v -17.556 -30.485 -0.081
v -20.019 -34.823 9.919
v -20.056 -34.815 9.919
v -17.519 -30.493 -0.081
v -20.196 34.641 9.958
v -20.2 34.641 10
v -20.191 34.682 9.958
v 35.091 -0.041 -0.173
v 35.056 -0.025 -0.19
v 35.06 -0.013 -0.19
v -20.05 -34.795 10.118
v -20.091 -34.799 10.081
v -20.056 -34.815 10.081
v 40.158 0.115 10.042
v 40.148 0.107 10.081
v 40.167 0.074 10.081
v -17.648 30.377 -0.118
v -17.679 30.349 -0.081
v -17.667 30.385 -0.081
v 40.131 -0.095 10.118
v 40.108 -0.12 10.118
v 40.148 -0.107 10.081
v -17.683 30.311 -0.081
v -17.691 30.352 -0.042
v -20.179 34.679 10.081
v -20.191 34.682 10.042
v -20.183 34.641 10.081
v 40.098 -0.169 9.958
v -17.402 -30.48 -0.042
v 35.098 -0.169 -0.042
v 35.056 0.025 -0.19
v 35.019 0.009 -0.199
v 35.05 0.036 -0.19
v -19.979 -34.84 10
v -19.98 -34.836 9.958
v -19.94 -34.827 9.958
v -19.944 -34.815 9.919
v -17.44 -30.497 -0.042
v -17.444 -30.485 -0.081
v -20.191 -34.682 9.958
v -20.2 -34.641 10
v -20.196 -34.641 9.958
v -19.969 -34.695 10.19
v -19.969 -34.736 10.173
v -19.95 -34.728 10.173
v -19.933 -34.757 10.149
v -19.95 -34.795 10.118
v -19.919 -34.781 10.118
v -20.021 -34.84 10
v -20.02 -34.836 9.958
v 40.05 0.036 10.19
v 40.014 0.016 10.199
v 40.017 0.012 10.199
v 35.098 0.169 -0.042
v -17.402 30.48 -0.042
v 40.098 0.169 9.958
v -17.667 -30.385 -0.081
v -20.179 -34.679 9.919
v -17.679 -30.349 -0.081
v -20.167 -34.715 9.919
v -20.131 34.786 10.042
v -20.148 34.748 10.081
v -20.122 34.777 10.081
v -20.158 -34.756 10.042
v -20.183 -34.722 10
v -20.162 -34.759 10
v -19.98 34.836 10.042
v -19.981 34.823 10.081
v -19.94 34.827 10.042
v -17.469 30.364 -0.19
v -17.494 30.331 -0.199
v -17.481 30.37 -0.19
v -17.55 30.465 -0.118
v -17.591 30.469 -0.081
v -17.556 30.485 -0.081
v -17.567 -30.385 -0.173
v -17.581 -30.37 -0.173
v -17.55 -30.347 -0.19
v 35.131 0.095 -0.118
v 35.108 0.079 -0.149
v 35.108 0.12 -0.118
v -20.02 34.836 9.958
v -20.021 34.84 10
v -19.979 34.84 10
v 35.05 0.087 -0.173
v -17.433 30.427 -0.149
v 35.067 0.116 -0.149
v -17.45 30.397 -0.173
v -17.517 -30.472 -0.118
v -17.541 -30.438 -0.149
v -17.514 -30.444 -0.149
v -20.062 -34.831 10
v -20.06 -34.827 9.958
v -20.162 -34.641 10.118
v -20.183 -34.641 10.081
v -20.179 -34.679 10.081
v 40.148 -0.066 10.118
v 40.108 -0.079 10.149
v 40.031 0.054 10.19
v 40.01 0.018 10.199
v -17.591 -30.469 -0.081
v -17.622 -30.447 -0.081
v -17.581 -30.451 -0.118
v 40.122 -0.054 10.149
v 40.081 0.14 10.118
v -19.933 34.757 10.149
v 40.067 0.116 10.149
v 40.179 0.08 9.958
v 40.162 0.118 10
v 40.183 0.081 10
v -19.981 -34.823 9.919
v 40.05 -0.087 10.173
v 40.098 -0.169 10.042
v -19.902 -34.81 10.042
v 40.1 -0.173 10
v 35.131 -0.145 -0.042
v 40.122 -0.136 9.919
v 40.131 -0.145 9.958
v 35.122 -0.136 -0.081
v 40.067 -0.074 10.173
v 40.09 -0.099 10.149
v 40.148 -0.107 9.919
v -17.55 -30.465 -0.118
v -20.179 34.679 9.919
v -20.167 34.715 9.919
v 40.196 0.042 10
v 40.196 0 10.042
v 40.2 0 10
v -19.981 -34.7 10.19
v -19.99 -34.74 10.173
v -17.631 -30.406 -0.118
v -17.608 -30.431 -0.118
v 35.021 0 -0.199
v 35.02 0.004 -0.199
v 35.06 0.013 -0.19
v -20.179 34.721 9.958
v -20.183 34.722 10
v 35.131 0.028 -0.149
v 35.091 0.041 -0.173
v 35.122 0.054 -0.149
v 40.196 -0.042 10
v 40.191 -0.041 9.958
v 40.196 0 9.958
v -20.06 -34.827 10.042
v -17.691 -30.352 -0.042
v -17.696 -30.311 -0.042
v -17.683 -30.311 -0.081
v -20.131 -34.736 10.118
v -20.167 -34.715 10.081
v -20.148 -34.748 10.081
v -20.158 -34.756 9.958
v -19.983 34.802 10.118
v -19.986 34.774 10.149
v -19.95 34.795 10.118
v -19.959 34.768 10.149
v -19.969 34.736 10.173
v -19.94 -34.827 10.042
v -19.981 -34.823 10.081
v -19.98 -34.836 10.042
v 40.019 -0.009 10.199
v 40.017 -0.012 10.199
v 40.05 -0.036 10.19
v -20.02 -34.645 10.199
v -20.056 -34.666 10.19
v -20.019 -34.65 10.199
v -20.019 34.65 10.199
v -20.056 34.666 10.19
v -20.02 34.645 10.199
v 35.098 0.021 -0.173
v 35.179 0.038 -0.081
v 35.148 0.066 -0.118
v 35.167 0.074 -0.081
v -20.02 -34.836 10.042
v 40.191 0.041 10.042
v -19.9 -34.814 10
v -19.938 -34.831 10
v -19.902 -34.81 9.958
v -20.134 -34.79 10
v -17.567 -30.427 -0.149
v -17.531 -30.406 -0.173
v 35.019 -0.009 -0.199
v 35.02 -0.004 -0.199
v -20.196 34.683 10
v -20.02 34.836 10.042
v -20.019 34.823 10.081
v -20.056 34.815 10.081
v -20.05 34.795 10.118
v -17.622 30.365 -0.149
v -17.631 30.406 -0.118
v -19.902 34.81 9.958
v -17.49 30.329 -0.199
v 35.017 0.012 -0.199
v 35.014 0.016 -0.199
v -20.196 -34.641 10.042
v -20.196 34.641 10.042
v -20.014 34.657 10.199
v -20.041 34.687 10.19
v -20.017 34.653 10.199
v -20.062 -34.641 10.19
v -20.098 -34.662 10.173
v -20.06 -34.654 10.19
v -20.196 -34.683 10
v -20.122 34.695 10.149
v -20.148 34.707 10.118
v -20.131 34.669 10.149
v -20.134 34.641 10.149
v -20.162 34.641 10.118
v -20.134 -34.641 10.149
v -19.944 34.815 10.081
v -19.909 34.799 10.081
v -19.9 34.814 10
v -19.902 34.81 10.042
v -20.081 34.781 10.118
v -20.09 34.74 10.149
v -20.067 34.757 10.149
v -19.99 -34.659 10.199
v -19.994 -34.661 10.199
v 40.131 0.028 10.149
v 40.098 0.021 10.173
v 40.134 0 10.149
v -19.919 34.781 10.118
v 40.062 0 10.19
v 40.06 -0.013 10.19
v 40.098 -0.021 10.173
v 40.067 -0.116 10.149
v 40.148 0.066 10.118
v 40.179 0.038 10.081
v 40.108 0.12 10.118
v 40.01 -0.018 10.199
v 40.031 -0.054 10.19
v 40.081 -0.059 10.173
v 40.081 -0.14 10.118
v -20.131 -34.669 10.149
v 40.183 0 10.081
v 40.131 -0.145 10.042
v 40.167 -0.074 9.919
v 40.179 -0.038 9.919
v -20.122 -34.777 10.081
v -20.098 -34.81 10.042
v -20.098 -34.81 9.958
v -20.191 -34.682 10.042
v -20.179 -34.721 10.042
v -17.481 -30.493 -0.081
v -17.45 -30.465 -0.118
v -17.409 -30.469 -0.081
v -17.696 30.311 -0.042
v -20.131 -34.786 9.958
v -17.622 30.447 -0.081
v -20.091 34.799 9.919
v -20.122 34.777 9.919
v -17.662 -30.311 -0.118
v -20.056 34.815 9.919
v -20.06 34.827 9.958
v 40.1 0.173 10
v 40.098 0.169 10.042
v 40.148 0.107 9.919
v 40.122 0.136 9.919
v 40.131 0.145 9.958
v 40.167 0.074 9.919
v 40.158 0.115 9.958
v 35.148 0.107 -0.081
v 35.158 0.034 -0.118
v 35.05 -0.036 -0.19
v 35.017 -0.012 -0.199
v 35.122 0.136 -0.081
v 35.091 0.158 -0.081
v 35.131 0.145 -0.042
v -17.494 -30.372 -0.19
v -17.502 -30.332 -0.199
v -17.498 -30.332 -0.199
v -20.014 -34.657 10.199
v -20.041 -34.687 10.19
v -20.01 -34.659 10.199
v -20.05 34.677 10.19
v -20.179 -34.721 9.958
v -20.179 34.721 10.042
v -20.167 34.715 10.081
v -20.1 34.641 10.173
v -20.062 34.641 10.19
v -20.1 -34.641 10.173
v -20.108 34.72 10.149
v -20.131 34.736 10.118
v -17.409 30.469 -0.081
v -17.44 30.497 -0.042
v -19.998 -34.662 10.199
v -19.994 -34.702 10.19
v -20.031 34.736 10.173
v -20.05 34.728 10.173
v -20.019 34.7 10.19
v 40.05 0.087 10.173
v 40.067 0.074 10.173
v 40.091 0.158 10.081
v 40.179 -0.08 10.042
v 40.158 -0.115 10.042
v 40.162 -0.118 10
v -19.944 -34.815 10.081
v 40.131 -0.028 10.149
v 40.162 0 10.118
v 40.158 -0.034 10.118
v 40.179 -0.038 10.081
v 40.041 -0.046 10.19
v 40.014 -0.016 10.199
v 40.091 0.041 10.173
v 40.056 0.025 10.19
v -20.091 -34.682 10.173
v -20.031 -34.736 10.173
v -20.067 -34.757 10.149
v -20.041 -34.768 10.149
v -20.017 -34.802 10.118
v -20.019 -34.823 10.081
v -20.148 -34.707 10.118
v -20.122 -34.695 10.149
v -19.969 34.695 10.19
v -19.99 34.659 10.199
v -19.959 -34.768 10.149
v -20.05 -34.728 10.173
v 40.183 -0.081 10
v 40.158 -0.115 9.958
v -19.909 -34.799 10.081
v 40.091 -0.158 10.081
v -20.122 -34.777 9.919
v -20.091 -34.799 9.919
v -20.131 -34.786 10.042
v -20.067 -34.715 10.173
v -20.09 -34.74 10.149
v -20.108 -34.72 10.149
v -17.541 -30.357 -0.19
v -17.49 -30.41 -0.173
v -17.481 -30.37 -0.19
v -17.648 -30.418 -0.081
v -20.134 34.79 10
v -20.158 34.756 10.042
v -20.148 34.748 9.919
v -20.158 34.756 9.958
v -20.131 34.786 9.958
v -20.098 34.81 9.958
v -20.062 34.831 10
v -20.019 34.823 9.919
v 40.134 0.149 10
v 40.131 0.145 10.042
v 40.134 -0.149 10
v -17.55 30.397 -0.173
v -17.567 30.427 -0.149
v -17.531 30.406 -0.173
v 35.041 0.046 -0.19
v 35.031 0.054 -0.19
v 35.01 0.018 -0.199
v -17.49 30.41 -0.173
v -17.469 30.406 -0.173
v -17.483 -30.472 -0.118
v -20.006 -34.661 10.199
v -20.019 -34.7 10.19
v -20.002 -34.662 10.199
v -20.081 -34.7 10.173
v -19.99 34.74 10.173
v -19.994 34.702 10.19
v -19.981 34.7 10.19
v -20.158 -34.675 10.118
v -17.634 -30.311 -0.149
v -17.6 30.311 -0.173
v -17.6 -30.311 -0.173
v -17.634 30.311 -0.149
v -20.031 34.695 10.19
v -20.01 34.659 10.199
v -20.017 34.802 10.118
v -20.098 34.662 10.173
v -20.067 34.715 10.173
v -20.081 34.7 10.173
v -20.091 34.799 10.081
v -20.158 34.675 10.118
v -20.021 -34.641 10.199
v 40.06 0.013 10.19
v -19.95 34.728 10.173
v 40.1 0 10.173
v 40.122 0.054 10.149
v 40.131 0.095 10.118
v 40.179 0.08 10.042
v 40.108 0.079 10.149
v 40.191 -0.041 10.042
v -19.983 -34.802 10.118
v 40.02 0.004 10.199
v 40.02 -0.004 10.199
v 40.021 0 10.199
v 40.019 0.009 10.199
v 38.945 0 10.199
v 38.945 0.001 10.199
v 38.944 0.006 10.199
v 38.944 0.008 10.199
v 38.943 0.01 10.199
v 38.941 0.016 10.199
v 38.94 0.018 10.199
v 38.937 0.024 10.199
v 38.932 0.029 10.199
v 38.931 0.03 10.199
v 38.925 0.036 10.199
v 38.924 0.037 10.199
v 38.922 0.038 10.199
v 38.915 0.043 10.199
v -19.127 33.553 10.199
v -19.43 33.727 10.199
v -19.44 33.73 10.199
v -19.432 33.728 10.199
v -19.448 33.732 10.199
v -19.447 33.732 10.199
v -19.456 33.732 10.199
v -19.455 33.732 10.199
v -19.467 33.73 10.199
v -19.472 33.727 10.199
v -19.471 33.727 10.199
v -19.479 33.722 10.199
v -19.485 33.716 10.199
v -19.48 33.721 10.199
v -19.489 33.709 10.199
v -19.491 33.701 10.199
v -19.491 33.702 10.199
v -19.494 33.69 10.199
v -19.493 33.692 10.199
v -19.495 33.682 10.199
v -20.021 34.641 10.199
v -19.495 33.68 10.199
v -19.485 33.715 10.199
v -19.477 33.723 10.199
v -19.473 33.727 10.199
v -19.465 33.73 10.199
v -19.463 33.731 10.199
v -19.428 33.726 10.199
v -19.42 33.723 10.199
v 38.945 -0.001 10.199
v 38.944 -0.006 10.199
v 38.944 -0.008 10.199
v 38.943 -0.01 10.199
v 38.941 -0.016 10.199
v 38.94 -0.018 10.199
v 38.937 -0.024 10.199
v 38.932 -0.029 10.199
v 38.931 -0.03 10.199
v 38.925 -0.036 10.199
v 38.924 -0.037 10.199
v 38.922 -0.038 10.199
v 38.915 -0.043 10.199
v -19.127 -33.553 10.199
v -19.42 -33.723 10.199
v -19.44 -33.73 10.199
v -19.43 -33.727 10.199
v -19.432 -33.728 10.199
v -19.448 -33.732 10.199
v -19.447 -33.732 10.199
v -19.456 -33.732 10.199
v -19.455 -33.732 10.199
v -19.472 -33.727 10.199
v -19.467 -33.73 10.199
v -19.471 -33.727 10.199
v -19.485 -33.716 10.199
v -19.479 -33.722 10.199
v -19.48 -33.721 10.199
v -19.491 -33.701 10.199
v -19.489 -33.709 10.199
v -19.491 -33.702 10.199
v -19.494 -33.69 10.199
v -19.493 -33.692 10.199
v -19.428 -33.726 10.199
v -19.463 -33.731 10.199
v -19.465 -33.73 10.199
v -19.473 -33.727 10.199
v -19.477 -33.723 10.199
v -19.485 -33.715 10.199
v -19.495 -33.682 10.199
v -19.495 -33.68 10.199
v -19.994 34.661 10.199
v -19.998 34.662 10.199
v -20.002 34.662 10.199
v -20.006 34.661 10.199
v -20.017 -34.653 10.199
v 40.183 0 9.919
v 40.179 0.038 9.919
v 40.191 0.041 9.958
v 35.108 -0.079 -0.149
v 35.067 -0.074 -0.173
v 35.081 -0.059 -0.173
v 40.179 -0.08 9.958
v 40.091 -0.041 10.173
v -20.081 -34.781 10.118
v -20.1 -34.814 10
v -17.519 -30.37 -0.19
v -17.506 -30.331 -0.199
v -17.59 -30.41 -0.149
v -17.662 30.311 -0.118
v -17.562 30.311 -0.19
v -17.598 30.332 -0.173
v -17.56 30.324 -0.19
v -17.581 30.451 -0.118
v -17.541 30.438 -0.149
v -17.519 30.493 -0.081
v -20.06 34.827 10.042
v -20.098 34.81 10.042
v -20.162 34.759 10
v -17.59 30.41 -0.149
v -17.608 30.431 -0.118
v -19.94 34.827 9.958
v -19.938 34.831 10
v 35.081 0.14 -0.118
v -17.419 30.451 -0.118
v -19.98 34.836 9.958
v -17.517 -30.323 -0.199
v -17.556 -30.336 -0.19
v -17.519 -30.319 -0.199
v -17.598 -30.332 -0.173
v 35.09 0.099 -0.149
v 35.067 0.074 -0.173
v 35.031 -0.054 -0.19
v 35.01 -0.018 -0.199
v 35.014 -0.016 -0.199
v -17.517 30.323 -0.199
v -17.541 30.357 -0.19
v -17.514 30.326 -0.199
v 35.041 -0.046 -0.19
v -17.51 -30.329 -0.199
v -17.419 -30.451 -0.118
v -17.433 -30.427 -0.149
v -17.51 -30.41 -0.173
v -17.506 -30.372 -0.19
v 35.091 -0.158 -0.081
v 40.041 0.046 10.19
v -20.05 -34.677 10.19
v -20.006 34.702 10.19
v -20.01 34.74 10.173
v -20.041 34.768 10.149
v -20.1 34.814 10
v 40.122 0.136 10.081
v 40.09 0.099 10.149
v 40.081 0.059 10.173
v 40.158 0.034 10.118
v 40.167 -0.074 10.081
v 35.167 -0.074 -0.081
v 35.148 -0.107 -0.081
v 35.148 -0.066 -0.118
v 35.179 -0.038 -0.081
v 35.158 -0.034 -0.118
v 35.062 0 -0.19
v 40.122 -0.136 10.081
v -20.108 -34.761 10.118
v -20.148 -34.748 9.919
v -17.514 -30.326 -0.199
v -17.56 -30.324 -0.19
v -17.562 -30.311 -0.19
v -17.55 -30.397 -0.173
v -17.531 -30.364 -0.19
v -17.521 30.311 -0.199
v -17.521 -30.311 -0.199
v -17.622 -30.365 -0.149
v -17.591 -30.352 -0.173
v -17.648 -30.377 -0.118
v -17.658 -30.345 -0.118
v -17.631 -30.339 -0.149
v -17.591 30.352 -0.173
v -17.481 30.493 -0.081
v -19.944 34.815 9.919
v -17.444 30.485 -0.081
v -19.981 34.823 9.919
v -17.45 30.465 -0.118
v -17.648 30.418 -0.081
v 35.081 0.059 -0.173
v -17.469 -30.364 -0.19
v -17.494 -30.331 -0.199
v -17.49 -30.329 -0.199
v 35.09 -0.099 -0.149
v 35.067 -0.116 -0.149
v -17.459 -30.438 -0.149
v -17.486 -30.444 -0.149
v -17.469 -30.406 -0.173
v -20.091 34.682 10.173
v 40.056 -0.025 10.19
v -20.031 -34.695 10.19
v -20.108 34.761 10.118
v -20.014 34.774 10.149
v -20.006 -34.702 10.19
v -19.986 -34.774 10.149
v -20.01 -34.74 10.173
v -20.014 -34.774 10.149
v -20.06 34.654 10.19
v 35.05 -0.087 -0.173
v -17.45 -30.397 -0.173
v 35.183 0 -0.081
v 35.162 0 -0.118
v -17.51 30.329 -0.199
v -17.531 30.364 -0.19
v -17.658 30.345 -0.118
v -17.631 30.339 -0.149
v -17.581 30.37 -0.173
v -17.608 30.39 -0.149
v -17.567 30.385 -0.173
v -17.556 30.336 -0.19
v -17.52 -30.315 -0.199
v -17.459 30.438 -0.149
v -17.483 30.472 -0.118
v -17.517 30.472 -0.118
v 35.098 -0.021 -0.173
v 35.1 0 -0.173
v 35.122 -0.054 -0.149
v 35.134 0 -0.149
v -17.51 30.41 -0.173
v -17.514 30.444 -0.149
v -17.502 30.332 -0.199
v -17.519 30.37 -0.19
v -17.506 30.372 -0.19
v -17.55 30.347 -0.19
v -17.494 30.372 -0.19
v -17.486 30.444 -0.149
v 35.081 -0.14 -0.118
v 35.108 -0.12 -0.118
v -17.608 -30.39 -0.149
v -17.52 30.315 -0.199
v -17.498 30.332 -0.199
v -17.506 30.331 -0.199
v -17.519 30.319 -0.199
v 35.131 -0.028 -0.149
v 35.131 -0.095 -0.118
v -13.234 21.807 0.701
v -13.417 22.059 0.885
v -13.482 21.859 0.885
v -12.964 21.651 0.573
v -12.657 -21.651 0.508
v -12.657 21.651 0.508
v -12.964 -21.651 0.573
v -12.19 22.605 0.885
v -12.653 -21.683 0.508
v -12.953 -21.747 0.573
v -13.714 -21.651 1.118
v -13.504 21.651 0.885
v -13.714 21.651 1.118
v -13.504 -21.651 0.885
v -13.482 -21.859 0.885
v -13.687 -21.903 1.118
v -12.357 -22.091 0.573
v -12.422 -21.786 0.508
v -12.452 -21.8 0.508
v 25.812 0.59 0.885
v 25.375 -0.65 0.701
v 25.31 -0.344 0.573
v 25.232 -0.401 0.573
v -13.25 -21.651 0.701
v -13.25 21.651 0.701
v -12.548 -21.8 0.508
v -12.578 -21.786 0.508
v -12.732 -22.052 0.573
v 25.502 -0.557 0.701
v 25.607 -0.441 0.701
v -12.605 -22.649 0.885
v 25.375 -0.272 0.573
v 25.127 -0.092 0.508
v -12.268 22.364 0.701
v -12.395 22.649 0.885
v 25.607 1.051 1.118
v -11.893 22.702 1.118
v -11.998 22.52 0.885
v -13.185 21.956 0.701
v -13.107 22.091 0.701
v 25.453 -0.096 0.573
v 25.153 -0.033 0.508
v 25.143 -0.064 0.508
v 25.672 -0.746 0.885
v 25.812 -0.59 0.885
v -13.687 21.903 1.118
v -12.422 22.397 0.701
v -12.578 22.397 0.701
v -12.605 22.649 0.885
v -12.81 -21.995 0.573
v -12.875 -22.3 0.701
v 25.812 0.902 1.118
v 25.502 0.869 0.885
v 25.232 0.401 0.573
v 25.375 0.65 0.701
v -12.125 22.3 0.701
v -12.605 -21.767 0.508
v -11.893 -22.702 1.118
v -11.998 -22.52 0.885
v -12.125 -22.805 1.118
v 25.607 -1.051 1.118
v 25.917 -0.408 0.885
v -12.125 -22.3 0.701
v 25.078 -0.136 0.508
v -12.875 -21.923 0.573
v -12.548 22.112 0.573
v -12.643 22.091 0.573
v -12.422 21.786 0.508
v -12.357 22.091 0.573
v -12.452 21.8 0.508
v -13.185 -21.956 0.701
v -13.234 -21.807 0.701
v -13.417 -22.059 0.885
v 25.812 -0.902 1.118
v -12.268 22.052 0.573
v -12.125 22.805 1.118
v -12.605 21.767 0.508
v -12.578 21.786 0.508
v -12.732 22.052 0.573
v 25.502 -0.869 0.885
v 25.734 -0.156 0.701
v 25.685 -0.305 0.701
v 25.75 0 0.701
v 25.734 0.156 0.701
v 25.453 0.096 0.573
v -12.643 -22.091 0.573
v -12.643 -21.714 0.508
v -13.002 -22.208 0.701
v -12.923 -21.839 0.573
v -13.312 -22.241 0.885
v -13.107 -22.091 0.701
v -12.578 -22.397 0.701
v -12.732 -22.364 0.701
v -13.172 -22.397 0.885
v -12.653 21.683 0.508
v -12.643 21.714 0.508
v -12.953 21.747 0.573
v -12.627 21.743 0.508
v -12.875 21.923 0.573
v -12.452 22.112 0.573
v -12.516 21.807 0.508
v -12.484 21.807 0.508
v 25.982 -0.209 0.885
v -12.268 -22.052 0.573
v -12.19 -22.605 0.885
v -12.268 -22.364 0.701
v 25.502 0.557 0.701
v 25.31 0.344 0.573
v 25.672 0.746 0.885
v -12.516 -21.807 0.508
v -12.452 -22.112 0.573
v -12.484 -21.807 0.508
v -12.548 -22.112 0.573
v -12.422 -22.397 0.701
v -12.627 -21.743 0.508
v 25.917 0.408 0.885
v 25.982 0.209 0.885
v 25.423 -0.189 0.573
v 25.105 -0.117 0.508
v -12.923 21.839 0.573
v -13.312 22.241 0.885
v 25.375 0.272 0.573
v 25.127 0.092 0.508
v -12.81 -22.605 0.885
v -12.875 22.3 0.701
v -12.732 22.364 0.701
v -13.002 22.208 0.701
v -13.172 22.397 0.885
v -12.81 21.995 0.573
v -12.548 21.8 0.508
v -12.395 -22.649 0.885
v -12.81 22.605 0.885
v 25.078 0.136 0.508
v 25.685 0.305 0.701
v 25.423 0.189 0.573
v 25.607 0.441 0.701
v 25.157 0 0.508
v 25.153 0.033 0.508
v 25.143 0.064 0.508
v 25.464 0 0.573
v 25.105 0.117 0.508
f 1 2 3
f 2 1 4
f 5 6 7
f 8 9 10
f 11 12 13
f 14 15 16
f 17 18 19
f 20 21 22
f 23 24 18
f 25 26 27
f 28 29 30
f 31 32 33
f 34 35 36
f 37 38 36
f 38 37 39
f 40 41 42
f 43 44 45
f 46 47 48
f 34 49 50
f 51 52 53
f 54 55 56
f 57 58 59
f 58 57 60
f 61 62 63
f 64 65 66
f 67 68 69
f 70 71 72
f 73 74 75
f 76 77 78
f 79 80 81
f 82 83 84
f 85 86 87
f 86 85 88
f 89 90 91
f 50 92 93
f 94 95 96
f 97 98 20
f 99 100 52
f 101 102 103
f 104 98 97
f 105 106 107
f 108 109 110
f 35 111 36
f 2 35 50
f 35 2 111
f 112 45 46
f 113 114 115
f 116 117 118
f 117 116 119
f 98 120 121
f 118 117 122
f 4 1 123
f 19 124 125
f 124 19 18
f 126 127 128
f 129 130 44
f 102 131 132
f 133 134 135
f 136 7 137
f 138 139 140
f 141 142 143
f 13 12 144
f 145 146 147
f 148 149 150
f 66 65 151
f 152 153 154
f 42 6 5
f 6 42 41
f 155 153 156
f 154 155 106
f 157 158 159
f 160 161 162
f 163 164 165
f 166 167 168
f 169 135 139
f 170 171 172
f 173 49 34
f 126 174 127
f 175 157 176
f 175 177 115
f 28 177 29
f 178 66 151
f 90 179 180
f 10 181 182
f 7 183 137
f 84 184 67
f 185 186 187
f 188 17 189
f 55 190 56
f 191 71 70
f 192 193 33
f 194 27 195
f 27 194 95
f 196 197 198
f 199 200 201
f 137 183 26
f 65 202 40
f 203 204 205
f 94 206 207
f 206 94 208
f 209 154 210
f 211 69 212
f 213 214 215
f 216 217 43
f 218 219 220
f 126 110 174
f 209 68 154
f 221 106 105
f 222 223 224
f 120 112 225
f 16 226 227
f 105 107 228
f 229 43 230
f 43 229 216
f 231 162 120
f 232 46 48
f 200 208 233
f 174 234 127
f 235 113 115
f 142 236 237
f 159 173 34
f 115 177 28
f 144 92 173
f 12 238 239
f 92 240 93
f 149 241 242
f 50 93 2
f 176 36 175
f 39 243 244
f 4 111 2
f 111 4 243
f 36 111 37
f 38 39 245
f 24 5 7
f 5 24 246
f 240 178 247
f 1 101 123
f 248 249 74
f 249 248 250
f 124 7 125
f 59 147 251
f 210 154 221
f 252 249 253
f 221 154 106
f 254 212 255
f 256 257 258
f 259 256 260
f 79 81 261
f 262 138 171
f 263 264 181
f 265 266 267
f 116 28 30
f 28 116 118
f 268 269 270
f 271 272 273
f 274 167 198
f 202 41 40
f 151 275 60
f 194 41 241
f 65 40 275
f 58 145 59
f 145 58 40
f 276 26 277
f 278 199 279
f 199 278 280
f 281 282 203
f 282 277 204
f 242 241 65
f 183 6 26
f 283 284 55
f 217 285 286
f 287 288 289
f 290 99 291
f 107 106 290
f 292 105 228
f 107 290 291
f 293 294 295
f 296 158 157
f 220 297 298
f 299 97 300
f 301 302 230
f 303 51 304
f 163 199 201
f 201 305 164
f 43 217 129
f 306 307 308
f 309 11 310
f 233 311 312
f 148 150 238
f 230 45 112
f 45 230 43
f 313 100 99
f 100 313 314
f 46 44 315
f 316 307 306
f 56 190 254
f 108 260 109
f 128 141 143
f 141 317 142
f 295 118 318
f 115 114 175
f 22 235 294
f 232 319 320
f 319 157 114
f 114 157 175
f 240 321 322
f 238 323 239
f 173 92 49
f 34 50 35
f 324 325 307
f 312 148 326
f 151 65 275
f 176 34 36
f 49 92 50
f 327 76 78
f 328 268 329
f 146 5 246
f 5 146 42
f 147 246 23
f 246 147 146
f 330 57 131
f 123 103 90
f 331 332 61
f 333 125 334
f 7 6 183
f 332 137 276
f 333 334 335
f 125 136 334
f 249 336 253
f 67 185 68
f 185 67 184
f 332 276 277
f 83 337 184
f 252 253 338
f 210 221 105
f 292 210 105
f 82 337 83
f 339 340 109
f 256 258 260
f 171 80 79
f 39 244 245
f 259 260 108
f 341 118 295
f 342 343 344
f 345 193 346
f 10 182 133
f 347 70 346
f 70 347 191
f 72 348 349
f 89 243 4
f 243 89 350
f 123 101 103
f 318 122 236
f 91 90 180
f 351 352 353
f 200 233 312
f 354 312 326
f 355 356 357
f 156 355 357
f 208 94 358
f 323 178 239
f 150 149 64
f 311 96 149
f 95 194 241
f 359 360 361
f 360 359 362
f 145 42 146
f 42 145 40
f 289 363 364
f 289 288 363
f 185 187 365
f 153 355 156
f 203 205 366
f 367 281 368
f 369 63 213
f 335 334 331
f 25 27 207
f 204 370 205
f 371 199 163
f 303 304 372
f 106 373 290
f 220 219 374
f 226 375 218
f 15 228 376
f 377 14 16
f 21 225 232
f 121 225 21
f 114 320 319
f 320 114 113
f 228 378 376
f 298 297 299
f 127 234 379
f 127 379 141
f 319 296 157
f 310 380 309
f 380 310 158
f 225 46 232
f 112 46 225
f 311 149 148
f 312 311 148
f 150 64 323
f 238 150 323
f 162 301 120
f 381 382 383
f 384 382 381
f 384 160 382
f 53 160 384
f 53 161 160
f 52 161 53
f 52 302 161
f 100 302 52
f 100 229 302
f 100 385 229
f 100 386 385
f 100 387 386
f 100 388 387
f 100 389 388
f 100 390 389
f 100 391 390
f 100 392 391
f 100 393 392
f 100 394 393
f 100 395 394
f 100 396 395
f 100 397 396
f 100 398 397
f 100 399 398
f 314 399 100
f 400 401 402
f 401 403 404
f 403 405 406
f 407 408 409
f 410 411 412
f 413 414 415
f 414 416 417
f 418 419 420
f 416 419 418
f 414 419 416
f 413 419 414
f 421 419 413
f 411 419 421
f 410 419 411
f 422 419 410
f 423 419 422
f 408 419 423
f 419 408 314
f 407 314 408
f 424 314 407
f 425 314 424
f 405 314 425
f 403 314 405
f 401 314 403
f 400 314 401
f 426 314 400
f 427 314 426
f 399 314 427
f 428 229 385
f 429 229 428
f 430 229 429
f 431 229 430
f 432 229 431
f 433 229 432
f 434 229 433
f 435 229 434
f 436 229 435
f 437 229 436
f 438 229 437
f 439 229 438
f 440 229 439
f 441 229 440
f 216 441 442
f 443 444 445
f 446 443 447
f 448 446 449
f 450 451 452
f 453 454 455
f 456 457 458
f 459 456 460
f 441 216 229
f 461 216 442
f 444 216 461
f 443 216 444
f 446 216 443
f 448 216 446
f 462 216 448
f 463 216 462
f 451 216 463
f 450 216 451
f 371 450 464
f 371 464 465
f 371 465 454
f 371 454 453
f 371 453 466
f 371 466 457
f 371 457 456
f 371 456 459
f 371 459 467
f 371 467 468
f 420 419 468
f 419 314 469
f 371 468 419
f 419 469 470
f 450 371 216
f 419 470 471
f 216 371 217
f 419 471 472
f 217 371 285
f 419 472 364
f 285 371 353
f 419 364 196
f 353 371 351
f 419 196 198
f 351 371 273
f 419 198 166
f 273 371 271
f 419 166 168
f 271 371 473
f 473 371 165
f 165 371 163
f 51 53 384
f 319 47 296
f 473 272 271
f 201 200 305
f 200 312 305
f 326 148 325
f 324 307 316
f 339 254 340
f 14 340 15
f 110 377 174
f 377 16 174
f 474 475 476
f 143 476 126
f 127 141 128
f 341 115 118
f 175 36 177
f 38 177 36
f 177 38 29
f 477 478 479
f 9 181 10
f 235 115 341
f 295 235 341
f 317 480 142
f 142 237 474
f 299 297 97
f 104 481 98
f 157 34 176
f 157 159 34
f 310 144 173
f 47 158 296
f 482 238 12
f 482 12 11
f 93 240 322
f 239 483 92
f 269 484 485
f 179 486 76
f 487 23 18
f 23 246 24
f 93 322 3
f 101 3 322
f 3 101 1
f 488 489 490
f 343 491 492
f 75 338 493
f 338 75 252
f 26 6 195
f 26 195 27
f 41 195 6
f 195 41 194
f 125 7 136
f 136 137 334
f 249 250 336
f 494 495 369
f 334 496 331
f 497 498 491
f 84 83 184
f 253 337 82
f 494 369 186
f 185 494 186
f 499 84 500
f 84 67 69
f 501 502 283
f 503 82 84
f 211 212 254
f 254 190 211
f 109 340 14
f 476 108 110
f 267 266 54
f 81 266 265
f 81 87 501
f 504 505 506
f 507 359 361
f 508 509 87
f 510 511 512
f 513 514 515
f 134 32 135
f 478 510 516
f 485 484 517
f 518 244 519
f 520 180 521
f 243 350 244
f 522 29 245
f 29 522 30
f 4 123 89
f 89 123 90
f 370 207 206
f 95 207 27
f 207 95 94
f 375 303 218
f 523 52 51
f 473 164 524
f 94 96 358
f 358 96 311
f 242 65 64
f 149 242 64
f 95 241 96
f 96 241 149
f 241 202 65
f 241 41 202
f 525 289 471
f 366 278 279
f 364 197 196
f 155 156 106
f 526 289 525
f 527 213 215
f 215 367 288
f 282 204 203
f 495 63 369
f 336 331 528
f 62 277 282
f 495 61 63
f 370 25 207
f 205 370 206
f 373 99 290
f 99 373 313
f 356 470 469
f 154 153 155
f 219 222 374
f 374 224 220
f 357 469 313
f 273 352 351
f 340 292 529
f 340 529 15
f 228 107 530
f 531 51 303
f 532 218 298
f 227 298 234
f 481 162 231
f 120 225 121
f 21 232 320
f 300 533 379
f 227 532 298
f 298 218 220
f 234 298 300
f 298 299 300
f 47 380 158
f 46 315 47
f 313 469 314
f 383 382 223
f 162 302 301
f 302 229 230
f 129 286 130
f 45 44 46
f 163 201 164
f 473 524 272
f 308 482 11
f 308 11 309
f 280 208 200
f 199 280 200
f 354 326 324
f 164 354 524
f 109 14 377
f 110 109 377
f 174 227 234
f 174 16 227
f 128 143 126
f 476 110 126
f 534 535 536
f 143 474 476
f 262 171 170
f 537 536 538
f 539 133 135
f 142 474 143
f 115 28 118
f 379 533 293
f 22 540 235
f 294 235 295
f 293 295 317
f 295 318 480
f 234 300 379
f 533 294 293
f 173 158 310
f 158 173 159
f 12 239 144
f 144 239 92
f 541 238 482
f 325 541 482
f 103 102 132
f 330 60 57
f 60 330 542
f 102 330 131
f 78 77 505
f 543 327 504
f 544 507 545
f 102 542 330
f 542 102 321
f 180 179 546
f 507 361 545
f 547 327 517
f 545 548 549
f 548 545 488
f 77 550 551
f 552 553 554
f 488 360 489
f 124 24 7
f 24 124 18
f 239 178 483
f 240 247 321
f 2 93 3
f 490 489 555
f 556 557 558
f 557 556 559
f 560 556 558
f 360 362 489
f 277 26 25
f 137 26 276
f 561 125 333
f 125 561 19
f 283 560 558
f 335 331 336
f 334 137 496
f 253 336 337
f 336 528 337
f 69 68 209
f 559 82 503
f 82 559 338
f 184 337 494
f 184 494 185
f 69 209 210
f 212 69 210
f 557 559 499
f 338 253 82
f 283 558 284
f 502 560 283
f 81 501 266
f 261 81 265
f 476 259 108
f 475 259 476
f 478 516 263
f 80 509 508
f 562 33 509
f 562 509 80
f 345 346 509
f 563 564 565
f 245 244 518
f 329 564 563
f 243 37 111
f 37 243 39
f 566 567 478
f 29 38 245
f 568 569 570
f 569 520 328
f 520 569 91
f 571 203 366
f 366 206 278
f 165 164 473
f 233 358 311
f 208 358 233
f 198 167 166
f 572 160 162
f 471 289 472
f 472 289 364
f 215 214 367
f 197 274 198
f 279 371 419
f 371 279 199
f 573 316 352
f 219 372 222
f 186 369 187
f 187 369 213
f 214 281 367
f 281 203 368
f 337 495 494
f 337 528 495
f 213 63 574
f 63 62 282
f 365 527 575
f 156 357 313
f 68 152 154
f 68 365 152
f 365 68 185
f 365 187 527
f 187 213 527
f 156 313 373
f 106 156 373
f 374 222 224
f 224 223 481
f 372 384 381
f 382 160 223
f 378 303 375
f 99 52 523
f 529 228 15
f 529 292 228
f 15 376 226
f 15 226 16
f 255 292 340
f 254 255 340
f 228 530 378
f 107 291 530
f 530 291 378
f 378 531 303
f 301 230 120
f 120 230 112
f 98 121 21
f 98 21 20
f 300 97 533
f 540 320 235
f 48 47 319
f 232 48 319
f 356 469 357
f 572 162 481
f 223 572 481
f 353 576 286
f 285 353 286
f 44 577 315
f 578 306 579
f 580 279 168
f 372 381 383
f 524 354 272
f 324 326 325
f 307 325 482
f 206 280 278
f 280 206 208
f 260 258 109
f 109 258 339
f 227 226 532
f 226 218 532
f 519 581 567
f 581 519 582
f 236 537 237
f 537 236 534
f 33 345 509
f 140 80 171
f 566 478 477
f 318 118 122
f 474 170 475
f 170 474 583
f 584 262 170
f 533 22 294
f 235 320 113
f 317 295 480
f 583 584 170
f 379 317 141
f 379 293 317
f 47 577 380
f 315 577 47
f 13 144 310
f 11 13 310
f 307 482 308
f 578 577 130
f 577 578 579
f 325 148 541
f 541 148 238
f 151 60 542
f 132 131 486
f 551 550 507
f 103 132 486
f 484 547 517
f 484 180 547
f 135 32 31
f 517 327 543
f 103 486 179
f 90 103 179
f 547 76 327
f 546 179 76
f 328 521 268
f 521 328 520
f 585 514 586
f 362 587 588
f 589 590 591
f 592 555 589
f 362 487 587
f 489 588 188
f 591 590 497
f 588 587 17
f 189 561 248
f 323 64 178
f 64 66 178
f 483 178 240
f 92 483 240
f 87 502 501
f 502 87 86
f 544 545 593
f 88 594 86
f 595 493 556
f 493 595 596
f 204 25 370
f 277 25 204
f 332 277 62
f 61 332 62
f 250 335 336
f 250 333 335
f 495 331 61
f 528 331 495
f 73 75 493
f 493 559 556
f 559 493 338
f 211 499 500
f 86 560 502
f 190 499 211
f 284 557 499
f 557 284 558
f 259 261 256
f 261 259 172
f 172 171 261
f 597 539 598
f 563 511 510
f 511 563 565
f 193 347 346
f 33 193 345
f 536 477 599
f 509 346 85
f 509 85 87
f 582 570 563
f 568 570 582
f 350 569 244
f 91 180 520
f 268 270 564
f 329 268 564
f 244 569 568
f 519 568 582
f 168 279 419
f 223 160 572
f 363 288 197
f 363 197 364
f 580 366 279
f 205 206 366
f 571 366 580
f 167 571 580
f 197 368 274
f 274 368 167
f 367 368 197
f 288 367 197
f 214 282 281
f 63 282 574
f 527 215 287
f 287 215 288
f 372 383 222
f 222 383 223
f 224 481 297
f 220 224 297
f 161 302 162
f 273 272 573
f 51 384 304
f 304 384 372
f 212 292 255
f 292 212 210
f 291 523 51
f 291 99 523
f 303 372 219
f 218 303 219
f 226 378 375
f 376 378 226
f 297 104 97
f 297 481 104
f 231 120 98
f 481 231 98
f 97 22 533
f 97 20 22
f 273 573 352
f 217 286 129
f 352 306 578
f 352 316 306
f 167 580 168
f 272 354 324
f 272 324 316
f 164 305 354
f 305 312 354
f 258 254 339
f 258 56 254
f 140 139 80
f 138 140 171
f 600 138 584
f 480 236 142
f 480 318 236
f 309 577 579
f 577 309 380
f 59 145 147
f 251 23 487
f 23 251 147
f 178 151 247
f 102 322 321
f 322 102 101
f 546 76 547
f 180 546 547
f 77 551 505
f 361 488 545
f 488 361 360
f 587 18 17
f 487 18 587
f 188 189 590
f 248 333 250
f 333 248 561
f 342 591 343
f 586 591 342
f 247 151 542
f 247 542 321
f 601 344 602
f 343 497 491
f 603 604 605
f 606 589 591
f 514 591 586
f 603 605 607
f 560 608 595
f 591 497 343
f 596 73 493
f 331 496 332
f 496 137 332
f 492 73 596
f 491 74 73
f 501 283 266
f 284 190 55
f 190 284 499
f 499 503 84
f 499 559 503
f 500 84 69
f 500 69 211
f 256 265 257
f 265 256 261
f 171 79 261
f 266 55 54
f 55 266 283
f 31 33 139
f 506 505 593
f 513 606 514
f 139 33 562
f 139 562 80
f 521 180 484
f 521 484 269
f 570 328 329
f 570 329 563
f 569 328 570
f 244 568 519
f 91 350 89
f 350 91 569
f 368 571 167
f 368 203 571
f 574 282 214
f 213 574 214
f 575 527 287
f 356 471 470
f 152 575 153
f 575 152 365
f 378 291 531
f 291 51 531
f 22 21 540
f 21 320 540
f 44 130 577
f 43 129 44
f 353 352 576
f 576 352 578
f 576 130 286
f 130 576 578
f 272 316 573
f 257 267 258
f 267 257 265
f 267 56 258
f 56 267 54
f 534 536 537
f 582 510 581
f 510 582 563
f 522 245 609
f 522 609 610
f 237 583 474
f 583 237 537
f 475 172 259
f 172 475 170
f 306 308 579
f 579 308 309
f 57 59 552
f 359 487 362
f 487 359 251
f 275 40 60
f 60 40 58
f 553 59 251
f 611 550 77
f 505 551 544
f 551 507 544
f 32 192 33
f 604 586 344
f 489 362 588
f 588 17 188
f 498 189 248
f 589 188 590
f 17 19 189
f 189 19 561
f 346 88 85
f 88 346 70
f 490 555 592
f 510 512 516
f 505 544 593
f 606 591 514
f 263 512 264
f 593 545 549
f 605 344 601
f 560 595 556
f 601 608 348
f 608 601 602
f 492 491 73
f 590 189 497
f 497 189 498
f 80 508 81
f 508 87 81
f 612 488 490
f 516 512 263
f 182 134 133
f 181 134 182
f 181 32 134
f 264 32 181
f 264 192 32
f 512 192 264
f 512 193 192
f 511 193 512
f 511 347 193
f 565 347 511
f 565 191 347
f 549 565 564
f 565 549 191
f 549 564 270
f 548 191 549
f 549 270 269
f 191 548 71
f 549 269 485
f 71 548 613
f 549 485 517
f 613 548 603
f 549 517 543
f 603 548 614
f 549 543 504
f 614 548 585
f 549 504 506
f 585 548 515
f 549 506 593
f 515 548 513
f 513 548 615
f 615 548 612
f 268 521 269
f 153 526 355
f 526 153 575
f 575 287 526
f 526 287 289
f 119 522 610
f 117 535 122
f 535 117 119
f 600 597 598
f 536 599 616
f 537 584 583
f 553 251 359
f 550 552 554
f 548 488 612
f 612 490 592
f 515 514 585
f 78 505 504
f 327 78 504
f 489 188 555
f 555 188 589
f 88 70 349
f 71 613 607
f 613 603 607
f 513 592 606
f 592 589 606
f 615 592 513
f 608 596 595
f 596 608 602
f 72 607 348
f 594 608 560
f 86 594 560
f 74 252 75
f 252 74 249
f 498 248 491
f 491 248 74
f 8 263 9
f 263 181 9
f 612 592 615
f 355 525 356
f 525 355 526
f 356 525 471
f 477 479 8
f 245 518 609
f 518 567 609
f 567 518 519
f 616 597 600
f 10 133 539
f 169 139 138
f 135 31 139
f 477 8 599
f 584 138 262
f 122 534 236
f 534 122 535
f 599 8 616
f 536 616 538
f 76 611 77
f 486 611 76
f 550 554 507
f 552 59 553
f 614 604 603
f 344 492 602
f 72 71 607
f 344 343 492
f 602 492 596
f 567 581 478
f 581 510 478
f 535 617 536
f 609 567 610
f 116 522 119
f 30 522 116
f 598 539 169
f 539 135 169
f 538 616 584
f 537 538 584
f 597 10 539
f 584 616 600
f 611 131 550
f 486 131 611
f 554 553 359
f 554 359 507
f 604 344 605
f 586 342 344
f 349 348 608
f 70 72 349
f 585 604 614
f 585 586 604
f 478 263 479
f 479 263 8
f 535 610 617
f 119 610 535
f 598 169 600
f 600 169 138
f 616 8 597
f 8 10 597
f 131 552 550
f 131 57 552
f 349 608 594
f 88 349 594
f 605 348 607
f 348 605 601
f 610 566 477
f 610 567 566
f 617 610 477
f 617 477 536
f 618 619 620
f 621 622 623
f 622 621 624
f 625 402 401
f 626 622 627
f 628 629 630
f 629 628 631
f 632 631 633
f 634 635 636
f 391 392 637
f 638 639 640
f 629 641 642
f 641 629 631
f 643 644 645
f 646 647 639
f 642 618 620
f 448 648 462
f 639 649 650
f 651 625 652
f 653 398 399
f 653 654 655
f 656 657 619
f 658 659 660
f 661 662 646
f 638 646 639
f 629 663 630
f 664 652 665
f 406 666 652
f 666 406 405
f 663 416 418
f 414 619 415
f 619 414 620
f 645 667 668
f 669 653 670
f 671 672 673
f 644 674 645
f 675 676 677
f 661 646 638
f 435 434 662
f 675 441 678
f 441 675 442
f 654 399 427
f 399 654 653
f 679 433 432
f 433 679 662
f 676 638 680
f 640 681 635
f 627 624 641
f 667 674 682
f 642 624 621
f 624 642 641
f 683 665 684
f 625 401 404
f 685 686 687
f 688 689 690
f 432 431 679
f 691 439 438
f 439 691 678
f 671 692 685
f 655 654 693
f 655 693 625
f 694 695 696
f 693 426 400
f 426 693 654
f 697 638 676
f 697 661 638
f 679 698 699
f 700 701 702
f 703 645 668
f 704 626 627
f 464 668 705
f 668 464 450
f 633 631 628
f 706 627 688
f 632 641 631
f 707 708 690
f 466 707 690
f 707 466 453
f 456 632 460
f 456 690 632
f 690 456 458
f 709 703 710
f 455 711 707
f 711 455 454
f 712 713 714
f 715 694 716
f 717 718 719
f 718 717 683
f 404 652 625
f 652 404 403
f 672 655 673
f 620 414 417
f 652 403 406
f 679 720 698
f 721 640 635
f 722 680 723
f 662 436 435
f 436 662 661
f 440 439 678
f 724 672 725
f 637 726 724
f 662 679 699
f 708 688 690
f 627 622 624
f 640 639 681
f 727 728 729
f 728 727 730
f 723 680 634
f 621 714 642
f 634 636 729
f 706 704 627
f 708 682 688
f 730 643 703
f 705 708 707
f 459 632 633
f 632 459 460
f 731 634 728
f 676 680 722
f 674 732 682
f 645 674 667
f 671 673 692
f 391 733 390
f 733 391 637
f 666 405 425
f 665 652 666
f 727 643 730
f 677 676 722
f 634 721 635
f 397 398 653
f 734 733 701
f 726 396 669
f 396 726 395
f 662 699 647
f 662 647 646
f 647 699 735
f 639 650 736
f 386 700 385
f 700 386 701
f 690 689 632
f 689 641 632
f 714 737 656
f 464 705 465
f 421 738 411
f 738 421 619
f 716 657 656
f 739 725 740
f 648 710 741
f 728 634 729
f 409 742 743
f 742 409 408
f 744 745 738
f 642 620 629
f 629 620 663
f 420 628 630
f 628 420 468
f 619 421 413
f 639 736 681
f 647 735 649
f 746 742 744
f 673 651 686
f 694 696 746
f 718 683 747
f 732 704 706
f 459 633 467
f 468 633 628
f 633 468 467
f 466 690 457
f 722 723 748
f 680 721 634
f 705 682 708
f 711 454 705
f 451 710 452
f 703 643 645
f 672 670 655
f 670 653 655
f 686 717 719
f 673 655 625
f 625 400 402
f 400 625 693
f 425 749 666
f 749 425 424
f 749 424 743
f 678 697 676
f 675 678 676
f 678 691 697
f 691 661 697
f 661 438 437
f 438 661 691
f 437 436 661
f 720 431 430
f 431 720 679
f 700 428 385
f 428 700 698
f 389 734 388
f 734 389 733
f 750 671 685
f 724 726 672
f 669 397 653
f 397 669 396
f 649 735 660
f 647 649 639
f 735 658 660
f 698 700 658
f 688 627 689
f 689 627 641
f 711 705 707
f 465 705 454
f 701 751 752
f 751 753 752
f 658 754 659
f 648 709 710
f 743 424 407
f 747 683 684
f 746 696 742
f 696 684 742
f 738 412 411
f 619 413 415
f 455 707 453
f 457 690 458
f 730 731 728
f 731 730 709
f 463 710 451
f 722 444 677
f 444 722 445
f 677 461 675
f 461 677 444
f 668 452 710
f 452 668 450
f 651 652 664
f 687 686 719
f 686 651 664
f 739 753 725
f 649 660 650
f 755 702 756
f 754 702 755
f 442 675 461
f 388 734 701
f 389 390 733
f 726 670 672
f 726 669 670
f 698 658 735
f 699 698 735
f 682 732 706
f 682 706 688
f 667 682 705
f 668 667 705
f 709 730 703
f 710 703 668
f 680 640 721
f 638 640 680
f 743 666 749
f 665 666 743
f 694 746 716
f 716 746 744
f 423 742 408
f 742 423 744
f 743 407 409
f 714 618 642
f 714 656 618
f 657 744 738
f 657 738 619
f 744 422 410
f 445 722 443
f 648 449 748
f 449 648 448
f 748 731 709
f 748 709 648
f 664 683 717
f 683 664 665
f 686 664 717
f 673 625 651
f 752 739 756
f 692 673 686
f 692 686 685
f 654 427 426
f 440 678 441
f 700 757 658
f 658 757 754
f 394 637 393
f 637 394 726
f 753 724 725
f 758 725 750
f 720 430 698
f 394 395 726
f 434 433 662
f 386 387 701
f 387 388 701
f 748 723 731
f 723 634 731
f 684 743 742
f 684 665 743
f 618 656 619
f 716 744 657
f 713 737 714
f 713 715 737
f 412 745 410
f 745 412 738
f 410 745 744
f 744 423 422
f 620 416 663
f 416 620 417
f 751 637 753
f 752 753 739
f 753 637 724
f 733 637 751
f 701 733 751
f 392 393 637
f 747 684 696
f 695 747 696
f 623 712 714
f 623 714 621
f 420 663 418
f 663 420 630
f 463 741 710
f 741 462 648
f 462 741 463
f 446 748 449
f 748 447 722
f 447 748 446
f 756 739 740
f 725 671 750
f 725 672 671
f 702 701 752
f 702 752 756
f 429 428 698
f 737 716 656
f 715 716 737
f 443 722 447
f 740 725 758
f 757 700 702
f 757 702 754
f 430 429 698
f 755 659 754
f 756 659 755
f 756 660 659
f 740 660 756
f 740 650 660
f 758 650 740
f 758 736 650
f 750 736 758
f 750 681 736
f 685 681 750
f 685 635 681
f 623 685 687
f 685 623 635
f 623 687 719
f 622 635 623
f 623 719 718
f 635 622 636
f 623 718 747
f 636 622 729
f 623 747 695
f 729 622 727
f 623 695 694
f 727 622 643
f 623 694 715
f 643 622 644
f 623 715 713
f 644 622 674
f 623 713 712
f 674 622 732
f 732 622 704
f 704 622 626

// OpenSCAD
$fn=30;

module dot() {
    sphere(d=0.4);
}

difference() {
    hull()
    for (angle = [0, 120, 240]) {
        rotate([0, 0, angle])
        translate([35, 0, 0]) {
            sphere(d=0.4);
            translate([5, 0, 10])
                sphere(d=0.4);
        }

    }

    hull()
    for (angle = [0, 120, 240]) {
        rotate([0, 0, angle])
        translate([25, 0, 2]) {
            sphere(d=3);
            translate([14, 0, 8.3])
                sphere(d=0.1);
        }

    }
}
